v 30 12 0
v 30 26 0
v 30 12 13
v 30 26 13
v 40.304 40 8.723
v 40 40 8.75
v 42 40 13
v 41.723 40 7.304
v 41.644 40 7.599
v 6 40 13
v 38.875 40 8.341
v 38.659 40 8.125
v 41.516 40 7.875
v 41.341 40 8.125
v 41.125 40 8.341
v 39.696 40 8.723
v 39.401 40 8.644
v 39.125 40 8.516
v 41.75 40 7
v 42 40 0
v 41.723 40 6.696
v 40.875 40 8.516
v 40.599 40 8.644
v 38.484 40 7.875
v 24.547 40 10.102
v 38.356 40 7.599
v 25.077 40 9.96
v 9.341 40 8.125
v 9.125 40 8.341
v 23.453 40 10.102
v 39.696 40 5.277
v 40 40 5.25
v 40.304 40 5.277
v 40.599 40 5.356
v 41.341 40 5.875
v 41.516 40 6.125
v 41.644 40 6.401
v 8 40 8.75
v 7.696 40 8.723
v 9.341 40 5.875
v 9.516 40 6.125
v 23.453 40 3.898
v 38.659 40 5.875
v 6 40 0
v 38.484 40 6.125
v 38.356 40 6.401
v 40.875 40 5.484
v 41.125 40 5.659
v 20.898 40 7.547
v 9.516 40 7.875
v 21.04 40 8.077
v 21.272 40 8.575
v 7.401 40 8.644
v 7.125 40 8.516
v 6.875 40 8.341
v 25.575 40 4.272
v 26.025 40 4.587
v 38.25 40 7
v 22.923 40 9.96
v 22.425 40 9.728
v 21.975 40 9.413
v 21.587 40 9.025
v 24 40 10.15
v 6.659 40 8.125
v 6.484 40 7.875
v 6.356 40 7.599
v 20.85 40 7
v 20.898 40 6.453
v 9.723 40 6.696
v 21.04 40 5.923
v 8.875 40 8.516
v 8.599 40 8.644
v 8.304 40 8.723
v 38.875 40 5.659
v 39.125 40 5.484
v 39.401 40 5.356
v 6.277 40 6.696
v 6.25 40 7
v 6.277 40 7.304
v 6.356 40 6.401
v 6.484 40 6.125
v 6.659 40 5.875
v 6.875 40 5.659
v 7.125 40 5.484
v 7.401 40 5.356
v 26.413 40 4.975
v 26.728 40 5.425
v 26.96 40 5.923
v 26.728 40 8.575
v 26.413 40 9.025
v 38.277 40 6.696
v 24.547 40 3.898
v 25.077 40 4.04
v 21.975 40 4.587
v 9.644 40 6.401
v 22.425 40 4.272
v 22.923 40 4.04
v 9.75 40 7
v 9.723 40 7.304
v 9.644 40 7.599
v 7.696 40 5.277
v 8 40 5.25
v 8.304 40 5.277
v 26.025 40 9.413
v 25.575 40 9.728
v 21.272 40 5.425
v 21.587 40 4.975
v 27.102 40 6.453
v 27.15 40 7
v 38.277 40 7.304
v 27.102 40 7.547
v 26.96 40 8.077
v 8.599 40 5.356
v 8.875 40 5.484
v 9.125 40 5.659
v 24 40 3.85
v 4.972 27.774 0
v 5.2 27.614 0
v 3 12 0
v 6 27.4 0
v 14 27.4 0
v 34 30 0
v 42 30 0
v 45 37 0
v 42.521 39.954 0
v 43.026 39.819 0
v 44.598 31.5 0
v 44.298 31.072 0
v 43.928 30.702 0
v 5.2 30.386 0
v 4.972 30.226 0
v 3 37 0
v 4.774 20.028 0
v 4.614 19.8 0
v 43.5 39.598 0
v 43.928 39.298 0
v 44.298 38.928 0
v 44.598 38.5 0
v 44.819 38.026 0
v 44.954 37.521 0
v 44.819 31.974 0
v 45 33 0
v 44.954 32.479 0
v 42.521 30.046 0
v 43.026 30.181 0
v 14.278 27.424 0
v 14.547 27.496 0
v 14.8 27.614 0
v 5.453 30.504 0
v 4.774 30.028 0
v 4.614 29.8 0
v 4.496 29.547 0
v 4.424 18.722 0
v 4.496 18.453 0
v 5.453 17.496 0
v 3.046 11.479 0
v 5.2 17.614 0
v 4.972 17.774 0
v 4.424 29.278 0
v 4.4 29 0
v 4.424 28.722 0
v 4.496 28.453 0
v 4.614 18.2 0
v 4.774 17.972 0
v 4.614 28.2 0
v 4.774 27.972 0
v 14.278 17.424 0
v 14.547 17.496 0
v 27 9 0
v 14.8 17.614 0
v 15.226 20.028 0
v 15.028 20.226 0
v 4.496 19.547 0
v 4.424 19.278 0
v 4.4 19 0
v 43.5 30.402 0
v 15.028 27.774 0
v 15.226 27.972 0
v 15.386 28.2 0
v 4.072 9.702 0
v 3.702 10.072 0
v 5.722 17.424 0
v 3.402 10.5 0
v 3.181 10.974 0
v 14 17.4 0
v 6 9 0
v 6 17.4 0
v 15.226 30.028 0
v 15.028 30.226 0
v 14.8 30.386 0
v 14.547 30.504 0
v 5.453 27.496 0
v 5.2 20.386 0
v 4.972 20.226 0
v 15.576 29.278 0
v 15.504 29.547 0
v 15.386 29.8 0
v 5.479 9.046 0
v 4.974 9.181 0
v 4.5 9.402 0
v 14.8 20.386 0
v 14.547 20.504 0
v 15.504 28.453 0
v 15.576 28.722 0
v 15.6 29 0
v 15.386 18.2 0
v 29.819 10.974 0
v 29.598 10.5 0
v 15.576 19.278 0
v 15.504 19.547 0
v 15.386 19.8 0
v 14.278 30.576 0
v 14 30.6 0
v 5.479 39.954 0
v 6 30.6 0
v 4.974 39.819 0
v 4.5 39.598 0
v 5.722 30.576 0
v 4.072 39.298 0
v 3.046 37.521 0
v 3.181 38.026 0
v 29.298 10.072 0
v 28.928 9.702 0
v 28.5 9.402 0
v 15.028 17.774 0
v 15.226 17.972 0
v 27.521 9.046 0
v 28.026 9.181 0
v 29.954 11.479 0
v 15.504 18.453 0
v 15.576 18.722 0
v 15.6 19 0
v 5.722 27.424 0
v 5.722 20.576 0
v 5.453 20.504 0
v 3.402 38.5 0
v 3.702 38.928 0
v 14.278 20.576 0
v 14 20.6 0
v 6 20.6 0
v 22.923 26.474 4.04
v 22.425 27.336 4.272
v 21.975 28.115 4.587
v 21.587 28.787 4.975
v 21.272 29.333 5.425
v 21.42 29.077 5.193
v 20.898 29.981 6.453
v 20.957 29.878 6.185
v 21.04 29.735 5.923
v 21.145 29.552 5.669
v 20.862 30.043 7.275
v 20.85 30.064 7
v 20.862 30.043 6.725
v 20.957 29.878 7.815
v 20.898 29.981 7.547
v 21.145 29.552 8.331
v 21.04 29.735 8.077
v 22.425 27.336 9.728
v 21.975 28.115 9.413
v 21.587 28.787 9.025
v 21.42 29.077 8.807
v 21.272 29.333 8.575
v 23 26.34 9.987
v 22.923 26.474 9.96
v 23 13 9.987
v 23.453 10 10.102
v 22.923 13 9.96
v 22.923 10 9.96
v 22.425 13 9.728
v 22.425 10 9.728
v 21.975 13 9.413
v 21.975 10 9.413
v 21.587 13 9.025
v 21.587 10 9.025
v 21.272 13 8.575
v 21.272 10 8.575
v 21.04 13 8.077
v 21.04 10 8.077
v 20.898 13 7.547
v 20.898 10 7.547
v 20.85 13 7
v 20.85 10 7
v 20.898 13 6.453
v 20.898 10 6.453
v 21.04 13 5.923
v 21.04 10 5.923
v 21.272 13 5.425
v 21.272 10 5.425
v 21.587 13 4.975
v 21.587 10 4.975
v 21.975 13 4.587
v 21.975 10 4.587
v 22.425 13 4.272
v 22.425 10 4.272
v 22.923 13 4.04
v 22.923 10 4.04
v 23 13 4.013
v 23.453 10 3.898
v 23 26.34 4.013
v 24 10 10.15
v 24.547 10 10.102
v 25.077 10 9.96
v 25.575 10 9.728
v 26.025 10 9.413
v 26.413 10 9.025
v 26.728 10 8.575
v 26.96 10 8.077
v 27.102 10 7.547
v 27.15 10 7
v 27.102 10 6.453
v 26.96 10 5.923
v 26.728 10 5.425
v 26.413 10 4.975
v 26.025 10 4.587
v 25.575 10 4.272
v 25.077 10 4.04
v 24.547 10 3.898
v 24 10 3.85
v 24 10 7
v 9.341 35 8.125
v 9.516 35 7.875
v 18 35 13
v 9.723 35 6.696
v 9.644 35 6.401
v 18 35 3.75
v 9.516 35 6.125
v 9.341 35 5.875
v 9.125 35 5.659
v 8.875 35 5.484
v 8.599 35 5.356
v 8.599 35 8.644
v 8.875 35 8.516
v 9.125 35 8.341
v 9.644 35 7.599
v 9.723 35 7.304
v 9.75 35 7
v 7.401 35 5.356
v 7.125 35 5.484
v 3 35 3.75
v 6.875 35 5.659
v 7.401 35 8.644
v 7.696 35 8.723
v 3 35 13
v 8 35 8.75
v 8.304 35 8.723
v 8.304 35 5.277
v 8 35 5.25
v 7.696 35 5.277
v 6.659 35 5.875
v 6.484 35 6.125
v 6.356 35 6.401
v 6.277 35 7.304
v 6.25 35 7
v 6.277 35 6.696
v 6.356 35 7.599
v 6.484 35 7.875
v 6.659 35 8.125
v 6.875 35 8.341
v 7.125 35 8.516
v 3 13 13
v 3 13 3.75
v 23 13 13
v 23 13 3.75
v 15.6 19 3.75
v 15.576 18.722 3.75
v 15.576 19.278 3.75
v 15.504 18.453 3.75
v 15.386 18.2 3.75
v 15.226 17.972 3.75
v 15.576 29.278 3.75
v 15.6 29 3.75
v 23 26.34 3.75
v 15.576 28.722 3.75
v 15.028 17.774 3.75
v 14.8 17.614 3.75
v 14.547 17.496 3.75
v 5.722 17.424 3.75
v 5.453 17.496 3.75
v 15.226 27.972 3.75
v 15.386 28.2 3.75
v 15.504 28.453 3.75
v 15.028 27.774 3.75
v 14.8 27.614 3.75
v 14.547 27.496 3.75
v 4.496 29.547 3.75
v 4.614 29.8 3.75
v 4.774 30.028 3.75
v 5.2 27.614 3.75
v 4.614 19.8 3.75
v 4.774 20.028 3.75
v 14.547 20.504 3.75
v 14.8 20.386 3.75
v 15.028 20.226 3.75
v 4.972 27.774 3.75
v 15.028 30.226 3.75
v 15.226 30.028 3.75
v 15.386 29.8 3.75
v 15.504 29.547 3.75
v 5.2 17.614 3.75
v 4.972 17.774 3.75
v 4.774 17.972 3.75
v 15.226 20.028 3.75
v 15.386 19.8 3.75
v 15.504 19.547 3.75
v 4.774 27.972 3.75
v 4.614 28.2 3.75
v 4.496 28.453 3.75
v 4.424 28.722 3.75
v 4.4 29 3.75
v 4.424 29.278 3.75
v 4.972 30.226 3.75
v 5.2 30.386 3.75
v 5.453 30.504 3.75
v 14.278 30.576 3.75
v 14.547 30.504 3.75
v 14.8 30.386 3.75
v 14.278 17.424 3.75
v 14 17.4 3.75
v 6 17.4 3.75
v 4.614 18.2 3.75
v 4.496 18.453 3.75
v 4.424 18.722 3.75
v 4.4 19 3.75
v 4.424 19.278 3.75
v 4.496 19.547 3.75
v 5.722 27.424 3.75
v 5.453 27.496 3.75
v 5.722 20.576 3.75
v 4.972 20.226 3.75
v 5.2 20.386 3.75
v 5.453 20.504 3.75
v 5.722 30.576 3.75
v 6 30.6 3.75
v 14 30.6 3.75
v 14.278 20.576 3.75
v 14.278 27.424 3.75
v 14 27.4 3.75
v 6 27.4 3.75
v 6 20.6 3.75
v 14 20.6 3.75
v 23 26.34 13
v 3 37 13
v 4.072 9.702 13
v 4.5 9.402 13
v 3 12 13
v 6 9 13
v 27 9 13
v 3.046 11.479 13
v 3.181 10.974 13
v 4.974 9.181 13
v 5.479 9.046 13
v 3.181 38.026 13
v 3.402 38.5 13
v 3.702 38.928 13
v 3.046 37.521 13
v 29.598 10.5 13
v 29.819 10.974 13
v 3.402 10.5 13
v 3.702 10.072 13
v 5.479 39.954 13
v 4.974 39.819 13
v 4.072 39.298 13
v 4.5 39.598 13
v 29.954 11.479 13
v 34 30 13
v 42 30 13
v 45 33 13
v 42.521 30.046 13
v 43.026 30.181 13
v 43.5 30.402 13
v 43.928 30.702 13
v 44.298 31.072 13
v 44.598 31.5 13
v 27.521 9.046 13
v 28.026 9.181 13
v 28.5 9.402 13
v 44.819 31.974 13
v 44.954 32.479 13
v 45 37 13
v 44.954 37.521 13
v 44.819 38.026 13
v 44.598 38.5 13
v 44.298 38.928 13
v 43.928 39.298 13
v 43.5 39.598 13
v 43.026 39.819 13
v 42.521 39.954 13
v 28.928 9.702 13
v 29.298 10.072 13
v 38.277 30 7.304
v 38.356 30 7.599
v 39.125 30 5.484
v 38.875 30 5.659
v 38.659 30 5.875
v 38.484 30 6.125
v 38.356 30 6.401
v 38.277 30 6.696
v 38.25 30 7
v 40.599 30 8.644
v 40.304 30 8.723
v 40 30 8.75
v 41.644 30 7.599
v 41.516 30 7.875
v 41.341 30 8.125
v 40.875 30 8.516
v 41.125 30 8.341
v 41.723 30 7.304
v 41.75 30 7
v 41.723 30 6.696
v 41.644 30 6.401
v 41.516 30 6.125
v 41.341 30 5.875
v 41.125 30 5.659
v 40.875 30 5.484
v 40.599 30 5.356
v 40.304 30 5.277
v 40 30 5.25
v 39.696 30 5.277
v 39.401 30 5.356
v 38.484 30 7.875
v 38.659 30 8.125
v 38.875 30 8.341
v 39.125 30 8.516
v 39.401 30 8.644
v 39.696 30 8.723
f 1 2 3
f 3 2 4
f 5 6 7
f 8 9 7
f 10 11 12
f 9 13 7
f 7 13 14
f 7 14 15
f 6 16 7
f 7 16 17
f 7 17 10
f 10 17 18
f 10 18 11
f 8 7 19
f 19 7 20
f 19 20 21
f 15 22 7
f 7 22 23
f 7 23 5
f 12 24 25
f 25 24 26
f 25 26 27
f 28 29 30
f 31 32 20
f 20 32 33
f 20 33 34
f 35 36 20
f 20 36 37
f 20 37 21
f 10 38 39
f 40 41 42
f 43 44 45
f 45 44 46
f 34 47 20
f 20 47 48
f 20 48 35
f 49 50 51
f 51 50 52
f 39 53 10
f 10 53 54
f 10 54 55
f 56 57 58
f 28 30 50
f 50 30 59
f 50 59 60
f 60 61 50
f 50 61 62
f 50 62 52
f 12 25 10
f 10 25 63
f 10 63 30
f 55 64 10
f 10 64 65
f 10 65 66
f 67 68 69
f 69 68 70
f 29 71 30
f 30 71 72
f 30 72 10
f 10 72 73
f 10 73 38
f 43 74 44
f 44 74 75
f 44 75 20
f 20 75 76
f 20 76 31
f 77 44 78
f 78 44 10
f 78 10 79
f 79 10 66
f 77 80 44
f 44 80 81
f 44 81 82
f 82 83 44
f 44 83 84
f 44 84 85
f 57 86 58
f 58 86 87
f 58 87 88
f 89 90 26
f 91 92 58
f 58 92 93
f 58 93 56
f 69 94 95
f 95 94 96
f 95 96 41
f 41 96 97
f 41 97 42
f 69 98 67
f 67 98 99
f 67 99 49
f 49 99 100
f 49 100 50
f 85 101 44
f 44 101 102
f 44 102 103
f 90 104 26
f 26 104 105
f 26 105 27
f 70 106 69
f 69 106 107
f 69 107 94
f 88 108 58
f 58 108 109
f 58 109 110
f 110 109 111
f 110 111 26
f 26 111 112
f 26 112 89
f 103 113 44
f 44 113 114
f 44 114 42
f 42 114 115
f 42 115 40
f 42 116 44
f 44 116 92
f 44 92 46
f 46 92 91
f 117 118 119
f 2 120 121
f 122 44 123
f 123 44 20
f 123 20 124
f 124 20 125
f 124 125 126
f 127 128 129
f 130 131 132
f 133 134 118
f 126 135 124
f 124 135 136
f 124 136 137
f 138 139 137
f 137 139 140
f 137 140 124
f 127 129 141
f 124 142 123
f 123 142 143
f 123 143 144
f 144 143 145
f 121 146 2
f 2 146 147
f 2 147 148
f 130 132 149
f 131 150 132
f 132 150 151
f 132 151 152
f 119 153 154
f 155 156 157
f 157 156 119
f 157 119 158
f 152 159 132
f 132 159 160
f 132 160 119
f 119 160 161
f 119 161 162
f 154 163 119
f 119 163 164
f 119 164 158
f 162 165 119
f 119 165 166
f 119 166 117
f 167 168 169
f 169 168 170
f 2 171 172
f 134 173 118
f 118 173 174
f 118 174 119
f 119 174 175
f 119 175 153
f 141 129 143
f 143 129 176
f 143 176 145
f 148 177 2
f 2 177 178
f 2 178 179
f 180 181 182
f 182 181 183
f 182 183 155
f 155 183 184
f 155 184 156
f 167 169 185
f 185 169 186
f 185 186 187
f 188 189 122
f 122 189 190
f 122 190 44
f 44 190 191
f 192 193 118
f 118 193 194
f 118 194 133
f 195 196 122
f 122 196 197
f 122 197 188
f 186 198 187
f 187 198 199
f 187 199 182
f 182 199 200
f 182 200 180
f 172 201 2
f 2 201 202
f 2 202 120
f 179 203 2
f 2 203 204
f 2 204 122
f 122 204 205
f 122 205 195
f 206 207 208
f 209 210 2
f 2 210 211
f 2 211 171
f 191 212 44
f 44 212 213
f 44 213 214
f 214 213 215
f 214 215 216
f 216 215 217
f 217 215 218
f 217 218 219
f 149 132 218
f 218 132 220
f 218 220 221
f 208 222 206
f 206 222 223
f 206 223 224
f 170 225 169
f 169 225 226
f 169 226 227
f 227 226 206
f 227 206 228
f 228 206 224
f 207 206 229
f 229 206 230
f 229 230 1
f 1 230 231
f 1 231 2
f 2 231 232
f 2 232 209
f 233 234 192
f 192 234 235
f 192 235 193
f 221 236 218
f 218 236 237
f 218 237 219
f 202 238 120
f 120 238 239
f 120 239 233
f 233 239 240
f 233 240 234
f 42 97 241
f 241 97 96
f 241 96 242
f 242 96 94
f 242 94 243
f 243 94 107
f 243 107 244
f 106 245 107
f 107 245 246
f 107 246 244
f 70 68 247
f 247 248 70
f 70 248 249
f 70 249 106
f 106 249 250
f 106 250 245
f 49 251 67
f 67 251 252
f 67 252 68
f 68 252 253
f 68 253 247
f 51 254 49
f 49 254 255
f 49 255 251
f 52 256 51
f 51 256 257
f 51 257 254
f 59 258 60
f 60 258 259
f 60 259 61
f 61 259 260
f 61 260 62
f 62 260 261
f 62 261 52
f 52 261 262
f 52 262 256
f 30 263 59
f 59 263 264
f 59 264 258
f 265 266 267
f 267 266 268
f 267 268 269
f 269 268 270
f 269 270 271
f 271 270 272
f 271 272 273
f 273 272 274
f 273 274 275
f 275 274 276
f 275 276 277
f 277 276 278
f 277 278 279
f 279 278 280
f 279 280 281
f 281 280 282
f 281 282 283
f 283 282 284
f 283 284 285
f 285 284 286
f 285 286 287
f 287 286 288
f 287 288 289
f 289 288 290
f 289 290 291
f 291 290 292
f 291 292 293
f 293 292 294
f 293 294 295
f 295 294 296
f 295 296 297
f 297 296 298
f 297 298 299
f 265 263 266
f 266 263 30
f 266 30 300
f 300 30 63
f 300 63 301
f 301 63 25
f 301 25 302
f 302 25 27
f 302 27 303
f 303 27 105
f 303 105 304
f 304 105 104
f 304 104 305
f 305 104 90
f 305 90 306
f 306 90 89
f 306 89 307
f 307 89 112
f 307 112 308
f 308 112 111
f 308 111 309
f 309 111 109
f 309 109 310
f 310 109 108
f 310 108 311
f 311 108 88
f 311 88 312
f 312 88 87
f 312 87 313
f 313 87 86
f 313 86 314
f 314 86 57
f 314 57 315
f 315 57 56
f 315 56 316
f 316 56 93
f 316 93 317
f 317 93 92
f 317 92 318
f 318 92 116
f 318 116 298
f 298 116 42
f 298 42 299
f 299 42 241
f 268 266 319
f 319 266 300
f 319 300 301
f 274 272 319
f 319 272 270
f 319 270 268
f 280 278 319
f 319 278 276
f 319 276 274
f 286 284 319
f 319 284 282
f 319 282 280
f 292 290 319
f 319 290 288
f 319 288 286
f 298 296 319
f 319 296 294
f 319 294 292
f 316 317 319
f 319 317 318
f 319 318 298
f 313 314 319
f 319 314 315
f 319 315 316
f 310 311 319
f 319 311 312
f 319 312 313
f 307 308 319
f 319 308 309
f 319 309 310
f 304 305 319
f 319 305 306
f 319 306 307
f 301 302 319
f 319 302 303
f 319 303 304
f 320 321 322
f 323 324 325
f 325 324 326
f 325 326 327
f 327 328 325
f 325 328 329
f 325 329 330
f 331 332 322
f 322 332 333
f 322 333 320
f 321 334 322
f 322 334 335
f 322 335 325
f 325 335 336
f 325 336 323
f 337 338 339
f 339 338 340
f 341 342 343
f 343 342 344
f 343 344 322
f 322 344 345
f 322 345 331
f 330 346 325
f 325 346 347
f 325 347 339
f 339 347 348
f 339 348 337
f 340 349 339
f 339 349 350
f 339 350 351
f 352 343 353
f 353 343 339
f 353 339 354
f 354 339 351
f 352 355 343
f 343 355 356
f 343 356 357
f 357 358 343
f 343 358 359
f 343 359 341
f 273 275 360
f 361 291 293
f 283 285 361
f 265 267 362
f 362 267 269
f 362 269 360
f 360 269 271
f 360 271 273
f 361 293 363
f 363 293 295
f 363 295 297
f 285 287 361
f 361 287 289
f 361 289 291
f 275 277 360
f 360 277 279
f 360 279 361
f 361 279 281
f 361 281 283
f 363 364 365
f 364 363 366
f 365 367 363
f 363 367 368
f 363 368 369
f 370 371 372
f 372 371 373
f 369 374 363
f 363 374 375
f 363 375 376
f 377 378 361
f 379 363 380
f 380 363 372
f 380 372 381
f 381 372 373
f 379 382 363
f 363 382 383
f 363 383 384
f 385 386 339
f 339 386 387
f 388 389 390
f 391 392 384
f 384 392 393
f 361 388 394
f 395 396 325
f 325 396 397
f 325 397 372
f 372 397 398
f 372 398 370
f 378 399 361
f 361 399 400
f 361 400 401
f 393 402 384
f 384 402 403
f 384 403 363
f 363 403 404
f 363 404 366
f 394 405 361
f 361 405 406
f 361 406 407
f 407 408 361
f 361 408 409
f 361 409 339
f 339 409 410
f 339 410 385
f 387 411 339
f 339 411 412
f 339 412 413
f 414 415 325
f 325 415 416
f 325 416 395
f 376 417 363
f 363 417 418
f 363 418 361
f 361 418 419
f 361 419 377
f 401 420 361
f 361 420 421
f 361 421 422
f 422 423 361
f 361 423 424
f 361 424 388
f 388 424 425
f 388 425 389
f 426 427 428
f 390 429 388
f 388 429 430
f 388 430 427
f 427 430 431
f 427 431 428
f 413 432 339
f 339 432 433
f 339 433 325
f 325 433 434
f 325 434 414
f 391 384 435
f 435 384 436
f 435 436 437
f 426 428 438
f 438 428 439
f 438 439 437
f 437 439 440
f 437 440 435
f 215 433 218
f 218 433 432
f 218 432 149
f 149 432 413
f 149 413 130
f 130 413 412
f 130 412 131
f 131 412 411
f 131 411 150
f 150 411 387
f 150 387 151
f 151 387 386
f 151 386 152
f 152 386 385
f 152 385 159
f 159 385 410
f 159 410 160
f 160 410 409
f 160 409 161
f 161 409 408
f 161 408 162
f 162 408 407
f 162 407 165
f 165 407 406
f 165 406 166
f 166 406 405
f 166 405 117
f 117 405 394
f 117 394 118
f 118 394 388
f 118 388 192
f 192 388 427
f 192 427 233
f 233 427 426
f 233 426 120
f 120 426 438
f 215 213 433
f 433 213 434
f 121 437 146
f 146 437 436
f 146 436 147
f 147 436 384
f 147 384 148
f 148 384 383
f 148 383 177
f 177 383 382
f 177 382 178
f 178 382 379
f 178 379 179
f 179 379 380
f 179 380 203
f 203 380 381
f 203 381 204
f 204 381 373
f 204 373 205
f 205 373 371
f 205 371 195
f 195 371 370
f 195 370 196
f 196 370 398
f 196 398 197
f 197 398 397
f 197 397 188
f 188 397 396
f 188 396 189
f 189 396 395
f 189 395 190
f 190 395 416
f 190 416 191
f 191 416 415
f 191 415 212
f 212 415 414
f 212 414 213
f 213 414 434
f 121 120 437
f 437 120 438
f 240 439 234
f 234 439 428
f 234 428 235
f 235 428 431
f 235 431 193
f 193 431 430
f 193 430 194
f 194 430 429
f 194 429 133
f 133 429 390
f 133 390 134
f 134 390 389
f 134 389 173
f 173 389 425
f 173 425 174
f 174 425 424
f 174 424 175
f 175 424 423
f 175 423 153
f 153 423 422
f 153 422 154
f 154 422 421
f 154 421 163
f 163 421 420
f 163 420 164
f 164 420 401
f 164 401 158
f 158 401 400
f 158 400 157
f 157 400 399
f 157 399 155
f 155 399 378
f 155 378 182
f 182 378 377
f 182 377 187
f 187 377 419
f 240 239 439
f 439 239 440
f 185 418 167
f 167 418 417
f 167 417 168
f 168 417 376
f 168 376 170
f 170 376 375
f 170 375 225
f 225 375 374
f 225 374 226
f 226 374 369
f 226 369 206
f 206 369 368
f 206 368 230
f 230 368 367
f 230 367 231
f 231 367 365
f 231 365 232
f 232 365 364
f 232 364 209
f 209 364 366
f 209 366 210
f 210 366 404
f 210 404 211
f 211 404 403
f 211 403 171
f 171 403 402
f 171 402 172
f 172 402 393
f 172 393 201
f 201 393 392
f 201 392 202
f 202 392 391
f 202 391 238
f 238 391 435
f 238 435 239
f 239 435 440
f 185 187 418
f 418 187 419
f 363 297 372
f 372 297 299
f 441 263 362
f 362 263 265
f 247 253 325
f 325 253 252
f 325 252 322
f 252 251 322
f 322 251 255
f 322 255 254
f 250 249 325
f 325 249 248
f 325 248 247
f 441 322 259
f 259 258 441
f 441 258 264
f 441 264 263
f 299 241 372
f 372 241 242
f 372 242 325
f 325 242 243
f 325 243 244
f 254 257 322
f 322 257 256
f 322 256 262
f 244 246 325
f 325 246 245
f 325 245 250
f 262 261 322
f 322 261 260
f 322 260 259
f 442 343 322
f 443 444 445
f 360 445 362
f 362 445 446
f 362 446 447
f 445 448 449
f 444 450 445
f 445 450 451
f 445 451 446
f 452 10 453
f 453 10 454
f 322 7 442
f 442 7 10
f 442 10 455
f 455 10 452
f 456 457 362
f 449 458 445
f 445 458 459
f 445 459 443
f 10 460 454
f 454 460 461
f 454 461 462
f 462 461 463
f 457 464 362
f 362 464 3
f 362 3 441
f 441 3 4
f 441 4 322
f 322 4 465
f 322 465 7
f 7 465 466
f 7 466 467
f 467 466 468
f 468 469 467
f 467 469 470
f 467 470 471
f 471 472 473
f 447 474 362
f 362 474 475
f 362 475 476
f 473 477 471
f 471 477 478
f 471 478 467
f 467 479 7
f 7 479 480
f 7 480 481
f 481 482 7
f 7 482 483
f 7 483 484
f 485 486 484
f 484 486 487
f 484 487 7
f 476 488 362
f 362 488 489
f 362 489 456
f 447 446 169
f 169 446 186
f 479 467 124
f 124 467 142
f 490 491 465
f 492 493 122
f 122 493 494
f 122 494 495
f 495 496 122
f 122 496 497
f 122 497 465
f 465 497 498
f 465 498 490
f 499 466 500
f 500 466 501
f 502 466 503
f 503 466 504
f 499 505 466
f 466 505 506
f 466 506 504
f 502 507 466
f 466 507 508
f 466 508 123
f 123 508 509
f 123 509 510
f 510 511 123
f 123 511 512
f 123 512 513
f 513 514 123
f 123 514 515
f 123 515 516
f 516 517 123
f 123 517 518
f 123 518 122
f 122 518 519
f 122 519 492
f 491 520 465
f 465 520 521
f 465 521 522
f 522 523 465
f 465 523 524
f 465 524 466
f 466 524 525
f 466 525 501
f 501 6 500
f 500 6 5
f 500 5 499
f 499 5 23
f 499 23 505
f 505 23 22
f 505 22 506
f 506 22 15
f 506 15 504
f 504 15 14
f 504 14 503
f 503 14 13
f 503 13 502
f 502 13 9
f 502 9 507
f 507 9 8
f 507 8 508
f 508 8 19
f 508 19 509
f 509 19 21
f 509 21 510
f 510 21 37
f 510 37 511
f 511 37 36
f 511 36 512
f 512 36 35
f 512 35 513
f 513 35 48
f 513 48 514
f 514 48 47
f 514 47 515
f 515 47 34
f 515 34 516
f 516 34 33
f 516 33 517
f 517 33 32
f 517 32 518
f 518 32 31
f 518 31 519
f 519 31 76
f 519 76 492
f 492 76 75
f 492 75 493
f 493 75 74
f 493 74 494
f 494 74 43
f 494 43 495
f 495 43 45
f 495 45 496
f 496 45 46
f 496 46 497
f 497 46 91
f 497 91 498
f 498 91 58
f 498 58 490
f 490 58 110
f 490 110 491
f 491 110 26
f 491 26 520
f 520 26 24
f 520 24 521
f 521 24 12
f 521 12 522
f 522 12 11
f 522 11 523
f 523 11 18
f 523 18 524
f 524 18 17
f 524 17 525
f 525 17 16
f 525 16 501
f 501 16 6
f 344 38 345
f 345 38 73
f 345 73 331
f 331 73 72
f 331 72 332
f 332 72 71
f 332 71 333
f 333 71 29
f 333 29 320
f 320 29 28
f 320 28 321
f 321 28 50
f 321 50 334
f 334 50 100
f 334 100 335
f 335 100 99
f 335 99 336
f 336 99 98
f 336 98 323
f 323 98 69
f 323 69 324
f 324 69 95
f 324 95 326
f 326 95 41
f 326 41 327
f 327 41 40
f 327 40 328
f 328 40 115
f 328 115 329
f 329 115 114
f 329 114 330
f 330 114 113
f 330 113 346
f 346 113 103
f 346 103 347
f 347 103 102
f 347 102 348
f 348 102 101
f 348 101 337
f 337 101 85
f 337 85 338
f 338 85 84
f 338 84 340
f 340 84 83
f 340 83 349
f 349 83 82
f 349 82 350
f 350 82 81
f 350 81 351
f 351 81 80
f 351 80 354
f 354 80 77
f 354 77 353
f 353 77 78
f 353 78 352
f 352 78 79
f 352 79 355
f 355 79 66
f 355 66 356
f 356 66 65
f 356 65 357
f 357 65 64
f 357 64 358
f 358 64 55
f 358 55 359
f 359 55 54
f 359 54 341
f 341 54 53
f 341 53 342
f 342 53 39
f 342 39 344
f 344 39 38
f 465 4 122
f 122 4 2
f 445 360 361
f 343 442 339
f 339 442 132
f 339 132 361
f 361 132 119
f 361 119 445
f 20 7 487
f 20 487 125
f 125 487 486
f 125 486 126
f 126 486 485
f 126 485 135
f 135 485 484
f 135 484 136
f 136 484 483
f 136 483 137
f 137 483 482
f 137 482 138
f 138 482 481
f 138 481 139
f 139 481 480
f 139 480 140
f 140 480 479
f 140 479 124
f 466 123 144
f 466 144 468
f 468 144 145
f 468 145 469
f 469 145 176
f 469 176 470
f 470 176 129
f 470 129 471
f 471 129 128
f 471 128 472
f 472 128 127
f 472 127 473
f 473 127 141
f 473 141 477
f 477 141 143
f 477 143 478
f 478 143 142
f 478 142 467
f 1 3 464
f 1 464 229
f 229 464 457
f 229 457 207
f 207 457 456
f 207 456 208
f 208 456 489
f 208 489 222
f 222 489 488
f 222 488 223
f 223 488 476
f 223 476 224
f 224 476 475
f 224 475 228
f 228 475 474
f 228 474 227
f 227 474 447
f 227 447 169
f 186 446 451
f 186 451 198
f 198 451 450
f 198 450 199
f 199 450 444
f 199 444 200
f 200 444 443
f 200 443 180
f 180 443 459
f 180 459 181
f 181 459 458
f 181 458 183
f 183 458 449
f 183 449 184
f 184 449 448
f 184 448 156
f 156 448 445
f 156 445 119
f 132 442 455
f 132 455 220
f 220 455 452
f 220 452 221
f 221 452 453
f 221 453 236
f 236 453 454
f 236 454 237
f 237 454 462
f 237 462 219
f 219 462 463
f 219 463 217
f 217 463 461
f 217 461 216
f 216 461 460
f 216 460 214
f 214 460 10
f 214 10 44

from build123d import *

# Parameters (mm, degrees)
ESQUISSE1_W                   = 30
ESQUISSE1_H                   = 40
BOSS_EXTRU_1_DEPTH            = 14
ESQUISSE3_R                   = 3.15
ENL_V_MAT_EXTRU_1_DEPTH       = 30
ESQUISSE4_W                   = 15
ESQUISSE4_H                   = 22
ENL_V_MAT_EXTRU_2_DEPTH       = 10.25
ENL_V_MAT_EXTRU_3_DEPTH       = 4.75
ENL_V_MAT_EXTRU_4_DEPTH       = 10.25
ESQUISSE7_R                   = 1.75
ENL_V_MAT_EXTRU_5_DEPTH       = 15
ENL_V_START                   = -40
ESQUISSE9_W                   = 30
ESQUISSE9_H                   = 1
ENL_V_MAT_EXTRU_9_DEPTH       = 40
ENL_V_START_2                 = -13
ESQUISSE11_W                  = 30
ESQUISSE11_H                  = 9
ENL_V_MAT_EXTRU_10_DEPTH      = 13
ESQUISSE12_W                  = 15
ESQUISSE12_H                  = 13
BOSS_EXTRU_2_DEPTH            = 10
ESQUISSE13_R                  = 1.75
ENL_V_MAT_EXTRU_11_DEPTH      = 12
CHANFREIN1_SIZE               = 4
ESQUISSE14_W                  = 3
ESQUISSE14_H                  = 31
ENL_V_MAT_EXTRU_12_DEPTH      = 1
ENL_V_MAT_EXTRU_12_DEPTH_BACK = 14
CONG_1_R                      = 3


with BuildPart() as part:
    # Esquisse1 → Boss.-Extru.1 (new body)
    with BuildSketch(Plane.XY):
        with Locations((15, 20)):
            Rectangle(ESQUISSE1_W, ESQUISSE1_H)
    extrude(amount=BOSS_EXTRU_1_DEPTH)

    # Esquisse3 → Enlèv. mat.-Extru.1 (cut)
    with BuildSketch(Plane(origin=(0, 40, 0), x_dir=(1, 0, 0), z_dir=(0, 1, 0))):
        with Locations((24, -7)):
            Circle(ESQUISSE3_R)
    extrude(amount=-ENL_V_MAT_EXTRU_1_DEPTH, mode=Mode.SUBTRACT)

    # Esquisse4 → Enlèv. mat.-Extru.2 (cut)
    with BuildSketch(Plane.XY.offset(14)):
        with Locations((7.5, 24)):
            Rectangle(ESQUISSE4_W, ESQUISSE4_H)
    extrude(amount=-ENL_V_MAT_EXTRU_2_DEPTH, mode=Mode.SUBTRACT)

    # Esquisse5 → Enlèv. mat.-Extru.3 (cut, through all)
    with BuildSketch(Plane.XY.offset(3.75)):
        with BuildLine():
            Line((6, 30.6), (14, 30.6))
            ThreePointArc((14, 30.6), (15.6, 29), (14, 27.4))
            Line((14, 27.4), (6, 27.4))
            ThreePointArc((6, 27.4), (4.4, 29), (6, 30.6))
        make_face()
        with BuildLine():
            Line((6, 17.4), (14, 17.4))
            ThreePointArc((14, 17.4), (15.6, 19), (14, 20.6))
            Line((14, 20.6), (6, 20.6))
            ThreePointArc((6, 20.6), (4.4, 19), (6, 17.4))
        make_face()
    extrude(amount=-ENL_V_MAT_EXTRU_3_DEPTH, mode=Mode.SUBTRACT)

    # Esquisse6 → Enlèv. mat.-Extru.4 (cut)
    with BuildSketch(Plane.XY.offset(14)):
        Polygon((15, 35), (18, 35), (23, 26.339745962), (23, 13), (15, 13), align=None)
    extrude(amount=-ENL_V_MAT_EXTRU_4_DEPTH, mode=Mode.SUBTRACT)

    # Esquisse7 → Enlèv. mat.-Extru.5 (cut, through all)
    with BuildSketch(Plane.XY.offset(14)):
        with Locations((5, 6.5)):
            Circle(ESQUISSE7_R)
        with Locations((25, 6.5)):
            Circle(ESQUISSE7_R)
    extrude(amount=-ENL_V_MAT_EXTRU_5_DEPTH, mode=Mode.SUBTRACT)

    # Esquisse9 → Enlèv. mat.-Extru.9 (cut)
    with BuildSketch(Plane(origin=(0, 40, 0), x_dir=(1, 0, 0), z_dir=(0, 1, 0)).offset(ENL_V_START)):
        with Locations((15, -13.5)):
            Rectangle(ESQUISSE9_W, ESQUISSE9_H)
    extrude(amount=ENL_V_MAT_EXTRU_9_DEPTH, mode=Mode.SUBTRACT)

    # Esquisse11 → Enlèv. mat.-Extru.10 (cut)
    with BuildSketch(Plane.XY.offset(13).offset(ENL_V_START_2)):
        with Locations((15, 4.5)):
            Rectangle(ESQUISSE11_W, ESQUISSE11_H)
    extrude(amount=ENL_V_MAT_EXTRU_10_DEPTH, mode=Mode.SUBTRACT)

    # Esquisse12 → Boss.-Extru.2 (add)
    with BuildSketch(Plane(origin=(0, 40, 0), x_dir=(1, 0, 0), z_dir=(0, 1, 0))):
        with Locations((37.5, -6.5)):
            Rectangle(ESQUISSE12_W, ESQUISSE12_H)
    extrude(amount=-BOSS_EXTRU_2_DEPTH)

    # Esquisse13 → Enlèv. mat.-Extru.11 (cut)
    with BuildSketch(Plane(origin=(0, 40, 0), x_dir=(1, 0, 0), z_dir=(0, 1, 0))):
        with Locations((40, -7)):
            Circle(ESQUISSE13_R)
        with Locations((8, -7)):
            Circle(ESQUISSE13_R)
    extrude(amount=-ENL_V_MAT_EXTRU_11_DEPTH, mode=Mode.SUBTRACT)

    # Chanfrein1
    chanfrein1_edges = [part.edges().sort_by_distance(p)[0] for p in [
        (30, 30, 6.5),
    ]]
    chamfer(chanfrein1_edges, length=CHANFREIN1_SIZE)

    # Esquisse14 → Enlèv. mat.-Extru.12 (cut, two sides)
    with BuildSketch(Plane.XY.offset(13)) as enl_v_mat_extru_12_sk:
        with Locations((1.5, 24.5)):
            Rectangle(ESQUISSE14_W, ESQUISSE14_H)
    extrude(amount=ENL_V_MAT_EXTRU_12_DEPTH, mode=Mode.SUBTRACT)
    extrude(enl_v_mat_extru_12_sk.sketch, amount=-ENL_V_MAT_EXTRU_12_DEPTH_BACK, mode=Mode.SUBTRACT)

    # Congé1
    cong_1_edges = [part.edges().sort_by_distance(p)[0] for p in [
        (30, 9, 6.5),
        (45, 30, 6.5),
        (45, 40, 6.5),
        (3, 9, 6.5),
        (3, 40, 6.5),
    ]]
    fillet(cong_1_edges, radius=CONG_1_R)


solid = part.part
